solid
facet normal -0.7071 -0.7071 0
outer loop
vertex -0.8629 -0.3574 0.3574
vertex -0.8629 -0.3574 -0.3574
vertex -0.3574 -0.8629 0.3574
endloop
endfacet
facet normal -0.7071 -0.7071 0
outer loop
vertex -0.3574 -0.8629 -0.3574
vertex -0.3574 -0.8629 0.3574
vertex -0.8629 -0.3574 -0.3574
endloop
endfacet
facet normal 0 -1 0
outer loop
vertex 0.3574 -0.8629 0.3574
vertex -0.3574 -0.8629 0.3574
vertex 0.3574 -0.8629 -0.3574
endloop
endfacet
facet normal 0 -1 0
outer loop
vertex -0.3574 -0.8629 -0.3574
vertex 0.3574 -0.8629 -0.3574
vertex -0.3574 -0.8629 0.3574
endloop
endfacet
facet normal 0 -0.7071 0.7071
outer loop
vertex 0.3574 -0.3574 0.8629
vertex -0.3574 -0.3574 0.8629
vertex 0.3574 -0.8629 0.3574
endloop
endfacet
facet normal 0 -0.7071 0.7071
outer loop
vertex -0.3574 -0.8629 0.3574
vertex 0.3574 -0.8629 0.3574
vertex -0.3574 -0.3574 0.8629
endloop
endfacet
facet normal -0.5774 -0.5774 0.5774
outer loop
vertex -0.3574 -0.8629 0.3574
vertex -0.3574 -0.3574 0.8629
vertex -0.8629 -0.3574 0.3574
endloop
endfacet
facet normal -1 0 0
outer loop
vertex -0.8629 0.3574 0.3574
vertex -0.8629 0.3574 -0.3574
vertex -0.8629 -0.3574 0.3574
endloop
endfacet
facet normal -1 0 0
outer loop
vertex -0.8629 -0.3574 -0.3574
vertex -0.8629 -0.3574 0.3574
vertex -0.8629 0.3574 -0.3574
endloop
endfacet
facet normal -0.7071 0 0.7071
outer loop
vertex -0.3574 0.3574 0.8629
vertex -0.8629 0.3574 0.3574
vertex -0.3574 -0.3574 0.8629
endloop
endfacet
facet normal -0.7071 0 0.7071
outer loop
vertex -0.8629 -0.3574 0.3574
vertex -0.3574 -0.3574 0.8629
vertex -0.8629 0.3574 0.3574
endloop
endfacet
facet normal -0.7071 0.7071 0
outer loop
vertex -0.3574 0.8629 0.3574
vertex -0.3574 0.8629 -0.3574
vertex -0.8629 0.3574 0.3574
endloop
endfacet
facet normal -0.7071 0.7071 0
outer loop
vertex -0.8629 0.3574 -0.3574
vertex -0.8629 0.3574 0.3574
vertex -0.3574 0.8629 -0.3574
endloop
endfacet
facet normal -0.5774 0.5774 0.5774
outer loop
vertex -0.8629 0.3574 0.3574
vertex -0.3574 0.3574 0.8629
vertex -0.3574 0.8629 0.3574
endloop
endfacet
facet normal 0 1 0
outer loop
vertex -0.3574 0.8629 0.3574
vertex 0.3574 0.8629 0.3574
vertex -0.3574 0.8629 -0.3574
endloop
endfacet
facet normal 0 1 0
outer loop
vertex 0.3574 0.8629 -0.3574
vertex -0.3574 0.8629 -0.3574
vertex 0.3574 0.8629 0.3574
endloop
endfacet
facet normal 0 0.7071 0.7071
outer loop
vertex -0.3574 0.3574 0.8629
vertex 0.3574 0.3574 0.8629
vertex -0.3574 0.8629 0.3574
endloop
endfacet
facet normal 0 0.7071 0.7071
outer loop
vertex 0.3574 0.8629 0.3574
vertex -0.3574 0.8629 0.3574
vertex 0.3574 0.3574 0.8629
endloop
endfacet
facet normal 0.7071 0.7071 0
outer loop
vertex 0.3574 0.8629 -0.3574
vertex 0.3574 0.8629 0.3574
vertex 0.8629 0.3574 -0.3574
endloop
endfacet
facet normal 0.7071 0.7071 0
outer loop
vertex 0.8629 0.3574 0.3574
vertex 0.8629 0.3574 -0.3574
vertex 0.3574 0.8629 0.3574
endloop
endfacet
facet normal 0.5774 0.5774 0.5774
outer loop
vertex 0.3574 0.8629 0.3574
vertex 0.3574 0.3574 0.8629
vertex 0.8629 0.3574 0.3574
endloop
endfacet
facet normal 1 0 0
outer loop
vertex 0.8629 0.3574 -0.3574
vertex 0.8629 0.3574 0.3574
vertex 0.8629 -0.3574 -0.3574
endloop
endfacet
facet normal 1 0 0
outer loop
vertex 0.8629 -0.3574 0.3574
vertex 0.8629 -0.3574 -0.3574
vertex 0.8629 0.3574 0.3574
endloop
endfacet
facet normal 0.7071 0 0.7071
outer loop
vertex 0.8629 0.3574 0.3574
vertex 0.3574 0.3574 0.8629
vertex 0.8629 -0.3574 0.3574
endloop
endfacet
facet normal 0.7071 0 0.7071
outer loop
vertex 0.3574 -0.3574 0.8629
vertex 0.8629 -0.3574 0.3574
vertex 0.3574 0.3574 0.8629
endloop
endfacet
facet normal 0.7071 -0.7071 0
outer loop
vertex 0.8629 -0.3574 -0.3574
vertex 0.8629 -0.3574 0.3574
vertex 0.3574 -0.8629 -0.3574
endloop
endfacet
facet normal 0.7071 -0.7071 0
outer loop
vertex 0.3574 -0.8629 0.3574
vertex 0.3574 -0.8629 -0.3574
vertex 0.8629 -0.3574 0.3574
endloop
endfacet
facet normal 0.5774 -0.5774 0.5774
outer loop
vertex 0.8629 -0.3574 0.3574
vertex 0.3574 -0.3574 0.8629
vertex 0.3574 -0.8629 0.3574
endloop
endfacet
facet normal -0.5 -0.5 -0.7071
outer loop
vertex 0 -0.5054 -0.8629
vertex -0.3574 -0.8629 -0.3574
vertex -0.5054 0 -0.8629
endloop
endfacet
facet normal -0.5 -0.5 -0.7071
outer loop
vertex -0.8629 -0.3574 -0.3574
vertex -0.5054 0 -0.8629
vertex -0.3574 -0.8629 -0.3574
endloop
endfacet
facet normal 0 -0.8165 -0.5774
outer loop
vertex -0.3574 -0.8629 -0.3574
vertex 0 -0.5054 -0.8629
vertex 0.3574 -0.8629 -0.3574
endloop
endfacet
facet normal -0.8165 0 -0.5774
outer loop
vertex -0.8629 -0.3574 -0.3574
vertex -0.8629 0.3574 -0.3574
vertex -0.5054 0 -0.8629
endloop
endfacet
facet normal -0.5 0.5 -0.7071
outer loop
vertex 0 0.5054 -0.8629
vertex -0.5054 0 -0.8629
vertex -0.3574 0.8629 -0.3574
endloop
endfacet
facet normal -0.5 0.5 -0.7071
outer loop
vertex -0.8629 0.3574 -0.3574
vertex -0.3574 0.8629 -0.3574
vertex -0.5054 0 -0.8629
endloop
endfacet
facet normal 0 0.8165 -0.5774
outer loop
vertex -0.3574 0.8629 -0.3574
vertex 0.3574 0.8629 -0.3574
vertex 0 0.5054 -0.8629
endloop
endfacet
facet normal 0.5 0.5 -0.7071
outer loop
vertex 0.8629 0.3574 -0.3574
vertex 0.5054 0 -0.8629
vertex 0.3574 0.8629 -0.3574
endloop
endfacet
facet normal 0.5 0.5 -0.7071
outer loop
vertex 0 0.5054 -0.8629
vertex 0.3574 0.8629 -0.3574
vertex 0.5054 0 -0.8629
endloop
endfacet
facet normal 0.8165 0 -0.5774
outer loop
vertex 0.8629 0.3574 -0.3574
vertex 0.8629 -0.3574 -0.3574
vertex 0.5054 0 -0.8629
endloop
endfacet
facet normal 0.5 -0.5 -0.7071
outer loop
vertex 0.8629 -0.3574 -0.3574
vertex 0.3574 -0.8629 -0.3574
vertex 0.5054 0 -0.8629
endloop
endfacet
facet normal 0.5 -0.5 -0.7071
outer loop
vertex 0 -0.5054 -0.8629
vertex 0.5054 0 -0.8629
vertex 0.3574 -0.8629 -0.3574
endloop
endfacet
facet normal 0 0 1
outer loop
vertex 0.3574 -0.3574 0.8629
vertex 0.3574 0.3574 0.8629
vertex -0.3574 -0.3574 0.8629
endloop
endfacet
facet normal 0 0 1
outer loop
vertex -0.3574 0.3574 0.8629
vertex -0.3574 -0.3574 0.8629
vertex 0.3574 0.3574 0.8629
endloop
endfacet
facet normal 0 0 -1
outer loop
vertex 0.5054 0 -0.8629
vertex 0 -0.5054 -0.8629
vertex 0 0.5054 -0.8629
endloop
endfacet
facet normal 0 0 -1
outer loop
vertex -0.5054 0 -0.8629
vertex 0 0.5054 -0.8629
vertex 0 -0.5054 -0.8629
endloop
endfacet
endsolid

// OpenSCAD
polyhedron( points = [[-0.35740674398855, -0.862856209184783, 0.357406744292646], [-0.862856208957565, -0.357406744147688, 0.357406744292646], [-0.862856209235386, 0.357406744353854, 0.357406744292646], [-0.357406744659274, 0.862856209345562, 0.357406744292646], [0.357406743532359, 0.862856209345562, 0.357406744292646], [0.862856208546767, 0.357406744353861, 0.357406744292646], [0.862856208888763, -0.35740674414769, 0.357406744292646], [0.357406744358038, -0.862856209184783, 0.357406744292646], [-0.357406743956457, -0.862856209107304, -0.357406744053941], [-0.86285620889338, -0.357406744102302, -0.35740674394437], [-0.862856208783808, 0.357406744166809, -0.357406744053941], [-0.357406743846885, 0.862856208926095, -0.357406744318472], [0.357406744467612, 0.862856208829817, -0.357406744583003], [0.862856209294963, 0.35740674393438, -0.35740674469257], [0.862856209249572, -0.357406744334729, -0.357406744583003], [0.357406744358038, -0.862856209139393, -0.357406744318472], [-0.357406743956456, -0.357406743938328, 0.862856209052302], [0.357406744196434, -0.357406744120679, 0.862856208869952], [0.357406743693208, 0.357406744299071, 0.862856209116487], [-0.357406744408038, 0.357406744272866, 0.862856209116487], [3.89159995895781e-11, -0.50544946474058, -0.862856208923173], [-0.505449464889984, -1.48165566787104e-12, -0.86285620863125], [1.0310192625957e-10, 0.505449464585956, -0.862856209142313], [0.50544946484801, -2.64089766591707e-10, -0.862856209251887]], faces = [[0, 1, 9, 8], [0, 8, 15, 7], [0, 7, 17, 16], [0, 16, 1], [1, 2, 10, 9], [1, 16, 19, 2], [2, 3, 11, 10], [2, 19, 3], [3, 4, 12, 11], [3, 19, 18, 4], [4, 5, 13, 12], [4, 18, 5], [5, 6, 14, 13], [5, 18, 17, 6], [6, 7, 15, 14], [6, 17, 7], [8, 9, 21, 20], [8, 20, 15], [9, 10, 21], [10, 11, 22, 21], [11, 12, 22], [12, 13, 23, 22], [13, 14, 23], [14, 15, 20, 23], [16, 17, 18, 19], [20, 21, 22, 23]]);
